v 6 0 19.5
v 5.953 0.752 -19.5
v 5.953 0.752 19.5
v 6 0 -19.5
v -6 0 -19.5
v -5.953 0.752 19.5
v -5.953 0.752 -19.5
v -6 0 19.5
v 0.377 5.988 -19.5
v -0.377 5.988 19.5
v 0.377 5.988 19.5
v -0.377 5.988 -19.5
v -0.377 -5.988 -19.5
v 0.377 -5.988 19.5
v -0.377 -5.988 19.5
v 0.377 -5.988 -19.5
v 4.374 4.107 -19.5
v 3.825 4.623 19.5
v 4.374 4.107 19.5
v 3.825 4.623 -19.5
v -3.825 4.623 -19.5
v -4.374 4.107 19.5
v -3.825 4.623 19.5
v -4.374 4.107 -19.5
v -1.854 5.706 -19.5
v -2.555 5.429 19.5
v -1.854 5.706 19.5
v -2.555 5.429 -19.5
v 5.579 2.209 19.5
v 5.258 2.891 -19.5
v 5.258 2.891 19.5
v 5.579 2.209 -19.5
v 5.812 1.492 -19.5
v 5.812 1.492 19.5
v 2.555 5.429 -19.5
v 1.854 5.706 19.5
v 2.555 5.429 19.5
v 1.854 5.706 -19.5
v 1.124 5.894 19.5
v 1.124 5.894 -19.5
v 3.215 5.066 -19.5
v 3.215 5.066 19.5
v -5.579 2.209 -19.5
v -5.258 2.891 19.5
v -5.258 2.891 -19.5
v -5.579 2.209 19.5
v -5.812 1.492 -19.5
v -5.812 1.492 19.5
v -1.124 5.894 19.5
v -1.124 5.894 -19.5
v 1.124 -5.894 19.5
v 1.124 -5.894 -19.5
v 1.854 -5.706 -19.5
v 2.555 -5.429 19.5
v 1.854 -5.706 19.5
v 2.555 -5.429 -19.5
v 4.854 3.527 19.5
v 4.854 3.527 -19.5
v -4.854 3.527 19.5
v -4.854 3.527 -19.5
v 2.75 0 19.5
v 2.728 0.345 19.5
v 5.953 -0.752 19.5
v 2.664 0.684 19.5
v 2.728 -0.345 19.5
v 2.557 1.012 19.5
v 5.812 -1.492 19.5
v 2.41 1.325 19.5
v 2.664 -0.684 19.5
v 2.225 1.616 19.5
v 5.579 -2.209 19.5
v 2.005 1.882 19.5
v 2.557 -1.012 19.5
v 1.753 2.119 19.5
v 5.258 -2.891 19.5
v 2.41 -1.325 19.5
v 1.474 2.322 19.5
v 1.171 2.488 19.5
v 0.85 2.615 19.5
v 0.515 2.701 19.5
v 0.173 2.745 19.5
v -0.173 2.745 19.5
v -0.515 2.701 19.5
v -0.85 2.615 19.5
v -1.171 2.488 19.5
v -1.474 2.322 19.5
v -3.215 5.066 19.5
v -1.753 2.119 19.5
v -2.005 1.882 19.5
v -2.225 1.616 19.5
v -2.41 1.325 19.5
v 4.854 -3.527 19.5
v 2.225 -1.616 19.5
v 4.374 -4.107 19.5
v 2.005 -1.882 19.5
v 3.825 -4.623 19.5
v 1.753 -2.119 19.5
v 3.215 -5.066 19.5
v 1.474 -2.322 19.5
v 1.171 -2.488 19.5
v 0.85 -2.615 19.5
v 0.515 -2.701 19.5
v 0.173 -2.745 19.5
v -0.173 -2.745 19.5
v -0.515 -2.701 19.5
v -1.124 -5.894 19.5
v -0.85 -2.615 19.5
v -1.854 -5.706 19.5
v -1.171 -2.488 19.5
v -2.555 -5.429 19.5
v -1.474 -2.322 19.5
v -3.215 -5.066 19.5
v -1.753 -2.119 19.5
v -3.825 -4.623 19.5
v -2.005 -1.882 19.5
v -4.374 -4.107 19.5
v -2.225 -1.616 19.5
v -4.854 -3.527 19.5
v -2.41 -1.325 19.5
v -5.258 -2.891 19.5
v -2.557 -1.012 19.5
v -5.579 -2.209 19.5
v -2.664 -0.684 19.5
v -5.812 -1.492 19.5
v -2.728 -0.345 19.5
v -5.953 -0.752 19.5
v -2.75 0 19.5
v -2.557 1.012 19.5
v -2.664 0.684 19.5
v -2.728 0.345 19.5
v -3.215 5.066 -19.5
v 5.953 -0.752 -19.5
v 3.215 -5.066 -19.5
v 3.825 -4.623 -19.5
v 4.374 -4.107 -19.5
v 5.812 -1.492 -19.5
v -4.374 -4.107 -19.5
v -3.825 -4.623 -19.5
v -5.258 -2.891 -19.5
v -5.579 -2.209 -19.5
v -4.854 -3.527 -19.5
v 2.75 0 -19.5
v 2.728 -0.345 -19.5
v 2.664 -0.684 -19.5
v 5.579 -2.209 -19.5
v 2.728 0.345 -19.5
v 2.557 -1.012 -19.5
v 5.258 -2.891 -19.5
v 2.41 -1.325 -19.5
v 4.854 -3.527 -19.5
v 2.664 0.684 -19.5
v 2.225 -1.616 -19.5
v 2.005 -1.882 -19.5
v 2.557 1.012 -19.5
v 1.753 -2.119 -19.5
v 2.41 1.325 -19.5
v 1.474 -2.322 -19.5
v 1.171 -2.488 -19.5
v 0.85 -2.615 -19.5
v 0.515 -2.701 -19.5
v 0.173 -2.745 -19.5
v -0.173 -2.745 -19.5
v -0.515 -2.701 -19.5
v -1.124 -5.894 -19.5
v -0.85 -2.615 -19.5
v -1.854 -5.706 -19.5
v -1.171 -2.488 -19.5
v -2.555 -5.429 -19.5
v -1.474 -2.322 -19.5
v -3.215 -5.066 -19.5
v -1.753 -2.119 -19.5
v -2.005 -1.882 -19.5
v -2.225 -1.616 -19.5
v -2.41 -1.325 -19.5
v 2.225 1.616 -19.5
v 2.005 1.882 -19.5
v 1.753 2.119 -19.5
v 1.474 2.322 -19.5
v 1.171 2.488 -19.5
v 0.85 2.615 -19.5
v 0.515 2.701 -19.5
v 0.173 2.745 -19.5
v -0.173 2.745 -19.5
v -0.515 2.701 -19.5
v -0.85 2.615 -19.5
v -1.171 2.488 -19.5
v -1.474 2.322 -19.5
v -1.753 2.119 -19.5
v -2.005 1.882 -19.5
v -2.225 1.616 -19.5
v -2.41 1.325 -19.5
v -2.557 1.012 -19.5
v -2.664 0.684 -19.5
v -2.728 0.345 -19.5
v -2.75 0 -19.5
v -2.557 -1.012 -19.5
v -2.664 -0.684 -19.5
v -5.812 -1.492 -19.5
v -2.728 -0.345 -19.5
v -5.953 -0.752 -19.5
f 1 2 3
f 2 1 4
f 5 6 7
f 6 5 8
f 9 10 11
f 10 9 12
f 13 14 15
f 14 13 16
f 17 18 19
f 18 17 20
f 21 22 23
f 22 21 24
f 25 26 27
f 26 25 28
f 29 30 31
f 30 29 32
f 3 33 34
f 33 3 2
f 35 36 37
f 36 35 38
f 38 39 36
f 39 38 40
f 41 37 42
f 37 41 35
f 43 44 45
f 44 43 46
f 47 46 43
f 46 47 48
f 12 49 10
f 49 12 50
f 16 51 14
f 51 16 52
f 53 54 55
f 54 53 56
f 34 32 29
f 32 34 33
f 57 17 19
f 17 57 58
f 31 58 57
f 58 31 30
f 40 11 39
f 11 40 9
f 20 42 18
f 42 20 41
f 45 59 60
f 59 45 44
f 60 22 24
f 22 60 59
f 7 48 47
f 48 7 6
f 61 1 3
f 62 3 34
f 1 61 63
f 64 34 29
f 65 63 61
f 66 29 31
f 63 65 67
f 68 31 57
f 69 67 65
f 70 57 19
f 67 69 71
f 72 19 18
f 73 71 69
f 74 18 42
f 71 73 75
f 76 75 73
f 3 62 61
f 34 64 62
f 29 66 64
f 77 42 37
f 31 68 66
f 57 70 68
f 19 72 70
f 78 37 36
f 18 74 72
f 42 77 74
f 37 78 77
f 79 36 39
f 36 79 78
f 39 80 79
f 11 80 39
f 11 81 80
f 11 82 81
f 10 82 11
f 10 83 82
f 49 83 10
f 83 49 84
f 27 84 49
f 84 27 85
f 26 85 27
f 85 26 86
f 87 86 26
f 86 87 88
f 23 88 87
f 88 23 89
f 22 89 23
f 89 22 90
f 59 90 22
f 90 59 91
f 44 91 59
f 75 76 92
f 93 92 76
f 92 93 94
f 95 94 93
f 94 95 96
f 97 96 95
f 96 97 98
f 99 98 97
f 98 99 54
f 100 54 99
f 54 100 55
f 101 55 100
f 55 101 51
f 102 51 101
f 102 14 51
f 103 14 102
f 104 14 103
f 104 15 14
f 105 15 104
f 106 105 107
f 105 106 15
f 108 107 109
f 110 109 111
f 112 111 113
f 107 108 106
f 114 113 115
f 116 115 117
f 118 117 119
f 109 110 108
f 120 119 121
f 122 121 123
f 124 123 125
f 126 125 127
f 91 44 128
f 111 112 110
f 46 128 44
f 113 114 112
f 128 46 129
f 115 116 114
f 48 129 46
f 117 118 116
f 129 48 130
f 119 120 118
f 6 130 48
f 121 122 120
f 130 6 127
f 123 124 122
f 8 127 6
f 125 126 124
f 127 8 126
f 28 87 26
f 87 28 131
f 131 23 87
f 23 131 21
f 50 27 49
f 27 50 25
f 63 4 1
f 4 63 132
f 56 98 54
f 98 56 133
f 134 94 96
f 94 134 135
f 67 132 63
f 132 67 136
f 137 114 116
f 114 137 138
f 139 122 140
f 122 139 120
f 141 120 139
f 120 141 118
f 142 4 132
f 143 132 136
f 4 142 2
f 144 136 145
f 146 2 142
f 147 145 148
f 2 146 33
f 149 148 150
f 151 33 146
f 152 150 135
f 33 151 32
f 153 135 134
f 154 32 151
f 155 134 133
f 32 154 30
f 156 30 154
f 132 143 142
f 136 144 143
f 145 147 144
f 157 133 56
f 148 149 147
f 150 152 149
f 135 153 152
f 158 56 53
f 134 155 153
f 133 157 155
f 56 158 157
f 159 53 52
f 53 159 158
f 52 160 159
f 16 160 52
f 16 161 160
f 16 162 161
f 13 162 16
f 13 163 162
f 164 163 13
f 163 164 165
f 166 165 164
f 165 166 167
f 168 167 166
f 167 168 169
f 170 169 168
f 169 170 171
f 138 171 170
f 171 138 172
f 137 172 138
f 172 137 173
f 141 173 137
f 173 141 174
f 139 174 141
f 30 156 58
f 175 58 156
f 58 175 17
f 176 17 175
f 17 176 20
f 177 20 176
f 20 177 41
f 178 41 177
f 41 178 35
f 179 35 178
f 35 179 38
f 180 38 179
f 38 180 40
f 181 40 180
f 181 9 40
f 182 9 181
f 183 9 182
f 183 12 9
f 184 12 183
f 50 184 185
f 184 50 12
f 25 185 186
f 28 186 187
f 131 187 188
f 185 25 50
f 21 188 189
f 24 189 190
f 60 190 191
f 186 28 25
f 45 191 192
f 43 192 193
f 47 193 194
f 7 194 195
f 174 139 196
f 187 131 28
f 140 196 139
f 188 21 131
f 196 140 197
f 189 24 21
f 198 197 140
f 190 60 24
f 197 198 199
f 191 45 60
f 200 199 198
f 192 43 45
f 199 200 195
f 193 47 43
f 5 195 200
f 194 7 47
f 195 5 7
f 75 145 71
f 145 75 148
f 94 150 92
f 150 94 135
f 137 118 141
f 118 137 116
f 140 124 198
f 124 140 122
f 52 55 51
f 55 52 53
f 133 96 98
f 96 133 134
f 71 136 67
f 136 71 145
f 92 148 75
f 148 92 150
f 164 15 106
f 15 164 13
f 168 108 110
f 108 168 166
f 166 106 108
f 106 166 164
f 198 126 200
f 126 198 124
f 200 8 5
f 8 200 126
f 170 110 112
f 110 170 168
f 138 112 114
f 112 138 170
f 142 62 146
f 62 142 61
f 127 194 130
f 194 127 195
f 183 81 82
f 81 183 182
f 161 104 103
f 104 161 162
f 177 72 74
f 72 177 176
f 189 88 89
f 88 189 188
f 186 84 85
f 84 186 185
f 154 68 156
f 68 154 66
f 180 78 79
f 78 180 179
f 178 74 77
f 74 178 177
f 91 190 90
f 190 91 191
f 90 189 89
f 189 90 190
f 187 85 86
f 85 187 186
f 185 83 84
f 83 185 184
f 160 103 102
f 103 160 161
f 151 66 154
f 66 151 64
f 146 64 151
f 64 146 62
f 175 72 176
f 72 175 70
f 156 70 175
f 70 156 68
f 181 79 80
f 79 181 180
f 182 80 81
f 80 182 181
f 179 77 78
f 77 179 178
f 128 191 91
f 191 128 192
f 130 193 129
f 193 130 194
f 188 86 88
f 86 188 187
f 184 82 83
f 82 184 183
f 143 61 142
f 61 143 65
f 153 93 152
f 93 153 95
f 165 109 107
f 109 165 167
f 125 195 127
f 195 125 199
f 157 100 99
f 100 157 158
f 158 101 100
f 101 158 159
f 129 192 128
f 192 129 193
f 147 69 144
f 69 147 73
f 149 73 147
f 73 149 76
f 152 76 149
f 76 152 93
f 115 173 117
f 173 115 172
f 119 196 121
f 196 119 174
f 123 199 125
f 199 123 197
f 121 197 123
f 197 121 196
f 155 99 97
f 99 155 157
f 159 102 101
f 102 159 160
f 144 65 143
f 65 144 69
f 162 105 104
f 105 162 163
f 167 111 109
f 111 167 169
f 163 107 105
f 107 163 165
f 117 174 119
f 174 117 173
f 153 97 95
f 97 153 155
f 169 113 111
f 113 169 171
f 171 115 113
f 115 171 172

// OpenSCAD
$fn = 50;


difference() {
	union() {
		translate(v = [0, 0, -19.5000000000]) {
			cylinder(h = 39, r = 6.0000000000);
		}
	}
	union() {
		translate(v = [0, 0, -100.0000000000]) {
			cylinder(h = 200, r = 2.7500000000);
		}
	}
}
